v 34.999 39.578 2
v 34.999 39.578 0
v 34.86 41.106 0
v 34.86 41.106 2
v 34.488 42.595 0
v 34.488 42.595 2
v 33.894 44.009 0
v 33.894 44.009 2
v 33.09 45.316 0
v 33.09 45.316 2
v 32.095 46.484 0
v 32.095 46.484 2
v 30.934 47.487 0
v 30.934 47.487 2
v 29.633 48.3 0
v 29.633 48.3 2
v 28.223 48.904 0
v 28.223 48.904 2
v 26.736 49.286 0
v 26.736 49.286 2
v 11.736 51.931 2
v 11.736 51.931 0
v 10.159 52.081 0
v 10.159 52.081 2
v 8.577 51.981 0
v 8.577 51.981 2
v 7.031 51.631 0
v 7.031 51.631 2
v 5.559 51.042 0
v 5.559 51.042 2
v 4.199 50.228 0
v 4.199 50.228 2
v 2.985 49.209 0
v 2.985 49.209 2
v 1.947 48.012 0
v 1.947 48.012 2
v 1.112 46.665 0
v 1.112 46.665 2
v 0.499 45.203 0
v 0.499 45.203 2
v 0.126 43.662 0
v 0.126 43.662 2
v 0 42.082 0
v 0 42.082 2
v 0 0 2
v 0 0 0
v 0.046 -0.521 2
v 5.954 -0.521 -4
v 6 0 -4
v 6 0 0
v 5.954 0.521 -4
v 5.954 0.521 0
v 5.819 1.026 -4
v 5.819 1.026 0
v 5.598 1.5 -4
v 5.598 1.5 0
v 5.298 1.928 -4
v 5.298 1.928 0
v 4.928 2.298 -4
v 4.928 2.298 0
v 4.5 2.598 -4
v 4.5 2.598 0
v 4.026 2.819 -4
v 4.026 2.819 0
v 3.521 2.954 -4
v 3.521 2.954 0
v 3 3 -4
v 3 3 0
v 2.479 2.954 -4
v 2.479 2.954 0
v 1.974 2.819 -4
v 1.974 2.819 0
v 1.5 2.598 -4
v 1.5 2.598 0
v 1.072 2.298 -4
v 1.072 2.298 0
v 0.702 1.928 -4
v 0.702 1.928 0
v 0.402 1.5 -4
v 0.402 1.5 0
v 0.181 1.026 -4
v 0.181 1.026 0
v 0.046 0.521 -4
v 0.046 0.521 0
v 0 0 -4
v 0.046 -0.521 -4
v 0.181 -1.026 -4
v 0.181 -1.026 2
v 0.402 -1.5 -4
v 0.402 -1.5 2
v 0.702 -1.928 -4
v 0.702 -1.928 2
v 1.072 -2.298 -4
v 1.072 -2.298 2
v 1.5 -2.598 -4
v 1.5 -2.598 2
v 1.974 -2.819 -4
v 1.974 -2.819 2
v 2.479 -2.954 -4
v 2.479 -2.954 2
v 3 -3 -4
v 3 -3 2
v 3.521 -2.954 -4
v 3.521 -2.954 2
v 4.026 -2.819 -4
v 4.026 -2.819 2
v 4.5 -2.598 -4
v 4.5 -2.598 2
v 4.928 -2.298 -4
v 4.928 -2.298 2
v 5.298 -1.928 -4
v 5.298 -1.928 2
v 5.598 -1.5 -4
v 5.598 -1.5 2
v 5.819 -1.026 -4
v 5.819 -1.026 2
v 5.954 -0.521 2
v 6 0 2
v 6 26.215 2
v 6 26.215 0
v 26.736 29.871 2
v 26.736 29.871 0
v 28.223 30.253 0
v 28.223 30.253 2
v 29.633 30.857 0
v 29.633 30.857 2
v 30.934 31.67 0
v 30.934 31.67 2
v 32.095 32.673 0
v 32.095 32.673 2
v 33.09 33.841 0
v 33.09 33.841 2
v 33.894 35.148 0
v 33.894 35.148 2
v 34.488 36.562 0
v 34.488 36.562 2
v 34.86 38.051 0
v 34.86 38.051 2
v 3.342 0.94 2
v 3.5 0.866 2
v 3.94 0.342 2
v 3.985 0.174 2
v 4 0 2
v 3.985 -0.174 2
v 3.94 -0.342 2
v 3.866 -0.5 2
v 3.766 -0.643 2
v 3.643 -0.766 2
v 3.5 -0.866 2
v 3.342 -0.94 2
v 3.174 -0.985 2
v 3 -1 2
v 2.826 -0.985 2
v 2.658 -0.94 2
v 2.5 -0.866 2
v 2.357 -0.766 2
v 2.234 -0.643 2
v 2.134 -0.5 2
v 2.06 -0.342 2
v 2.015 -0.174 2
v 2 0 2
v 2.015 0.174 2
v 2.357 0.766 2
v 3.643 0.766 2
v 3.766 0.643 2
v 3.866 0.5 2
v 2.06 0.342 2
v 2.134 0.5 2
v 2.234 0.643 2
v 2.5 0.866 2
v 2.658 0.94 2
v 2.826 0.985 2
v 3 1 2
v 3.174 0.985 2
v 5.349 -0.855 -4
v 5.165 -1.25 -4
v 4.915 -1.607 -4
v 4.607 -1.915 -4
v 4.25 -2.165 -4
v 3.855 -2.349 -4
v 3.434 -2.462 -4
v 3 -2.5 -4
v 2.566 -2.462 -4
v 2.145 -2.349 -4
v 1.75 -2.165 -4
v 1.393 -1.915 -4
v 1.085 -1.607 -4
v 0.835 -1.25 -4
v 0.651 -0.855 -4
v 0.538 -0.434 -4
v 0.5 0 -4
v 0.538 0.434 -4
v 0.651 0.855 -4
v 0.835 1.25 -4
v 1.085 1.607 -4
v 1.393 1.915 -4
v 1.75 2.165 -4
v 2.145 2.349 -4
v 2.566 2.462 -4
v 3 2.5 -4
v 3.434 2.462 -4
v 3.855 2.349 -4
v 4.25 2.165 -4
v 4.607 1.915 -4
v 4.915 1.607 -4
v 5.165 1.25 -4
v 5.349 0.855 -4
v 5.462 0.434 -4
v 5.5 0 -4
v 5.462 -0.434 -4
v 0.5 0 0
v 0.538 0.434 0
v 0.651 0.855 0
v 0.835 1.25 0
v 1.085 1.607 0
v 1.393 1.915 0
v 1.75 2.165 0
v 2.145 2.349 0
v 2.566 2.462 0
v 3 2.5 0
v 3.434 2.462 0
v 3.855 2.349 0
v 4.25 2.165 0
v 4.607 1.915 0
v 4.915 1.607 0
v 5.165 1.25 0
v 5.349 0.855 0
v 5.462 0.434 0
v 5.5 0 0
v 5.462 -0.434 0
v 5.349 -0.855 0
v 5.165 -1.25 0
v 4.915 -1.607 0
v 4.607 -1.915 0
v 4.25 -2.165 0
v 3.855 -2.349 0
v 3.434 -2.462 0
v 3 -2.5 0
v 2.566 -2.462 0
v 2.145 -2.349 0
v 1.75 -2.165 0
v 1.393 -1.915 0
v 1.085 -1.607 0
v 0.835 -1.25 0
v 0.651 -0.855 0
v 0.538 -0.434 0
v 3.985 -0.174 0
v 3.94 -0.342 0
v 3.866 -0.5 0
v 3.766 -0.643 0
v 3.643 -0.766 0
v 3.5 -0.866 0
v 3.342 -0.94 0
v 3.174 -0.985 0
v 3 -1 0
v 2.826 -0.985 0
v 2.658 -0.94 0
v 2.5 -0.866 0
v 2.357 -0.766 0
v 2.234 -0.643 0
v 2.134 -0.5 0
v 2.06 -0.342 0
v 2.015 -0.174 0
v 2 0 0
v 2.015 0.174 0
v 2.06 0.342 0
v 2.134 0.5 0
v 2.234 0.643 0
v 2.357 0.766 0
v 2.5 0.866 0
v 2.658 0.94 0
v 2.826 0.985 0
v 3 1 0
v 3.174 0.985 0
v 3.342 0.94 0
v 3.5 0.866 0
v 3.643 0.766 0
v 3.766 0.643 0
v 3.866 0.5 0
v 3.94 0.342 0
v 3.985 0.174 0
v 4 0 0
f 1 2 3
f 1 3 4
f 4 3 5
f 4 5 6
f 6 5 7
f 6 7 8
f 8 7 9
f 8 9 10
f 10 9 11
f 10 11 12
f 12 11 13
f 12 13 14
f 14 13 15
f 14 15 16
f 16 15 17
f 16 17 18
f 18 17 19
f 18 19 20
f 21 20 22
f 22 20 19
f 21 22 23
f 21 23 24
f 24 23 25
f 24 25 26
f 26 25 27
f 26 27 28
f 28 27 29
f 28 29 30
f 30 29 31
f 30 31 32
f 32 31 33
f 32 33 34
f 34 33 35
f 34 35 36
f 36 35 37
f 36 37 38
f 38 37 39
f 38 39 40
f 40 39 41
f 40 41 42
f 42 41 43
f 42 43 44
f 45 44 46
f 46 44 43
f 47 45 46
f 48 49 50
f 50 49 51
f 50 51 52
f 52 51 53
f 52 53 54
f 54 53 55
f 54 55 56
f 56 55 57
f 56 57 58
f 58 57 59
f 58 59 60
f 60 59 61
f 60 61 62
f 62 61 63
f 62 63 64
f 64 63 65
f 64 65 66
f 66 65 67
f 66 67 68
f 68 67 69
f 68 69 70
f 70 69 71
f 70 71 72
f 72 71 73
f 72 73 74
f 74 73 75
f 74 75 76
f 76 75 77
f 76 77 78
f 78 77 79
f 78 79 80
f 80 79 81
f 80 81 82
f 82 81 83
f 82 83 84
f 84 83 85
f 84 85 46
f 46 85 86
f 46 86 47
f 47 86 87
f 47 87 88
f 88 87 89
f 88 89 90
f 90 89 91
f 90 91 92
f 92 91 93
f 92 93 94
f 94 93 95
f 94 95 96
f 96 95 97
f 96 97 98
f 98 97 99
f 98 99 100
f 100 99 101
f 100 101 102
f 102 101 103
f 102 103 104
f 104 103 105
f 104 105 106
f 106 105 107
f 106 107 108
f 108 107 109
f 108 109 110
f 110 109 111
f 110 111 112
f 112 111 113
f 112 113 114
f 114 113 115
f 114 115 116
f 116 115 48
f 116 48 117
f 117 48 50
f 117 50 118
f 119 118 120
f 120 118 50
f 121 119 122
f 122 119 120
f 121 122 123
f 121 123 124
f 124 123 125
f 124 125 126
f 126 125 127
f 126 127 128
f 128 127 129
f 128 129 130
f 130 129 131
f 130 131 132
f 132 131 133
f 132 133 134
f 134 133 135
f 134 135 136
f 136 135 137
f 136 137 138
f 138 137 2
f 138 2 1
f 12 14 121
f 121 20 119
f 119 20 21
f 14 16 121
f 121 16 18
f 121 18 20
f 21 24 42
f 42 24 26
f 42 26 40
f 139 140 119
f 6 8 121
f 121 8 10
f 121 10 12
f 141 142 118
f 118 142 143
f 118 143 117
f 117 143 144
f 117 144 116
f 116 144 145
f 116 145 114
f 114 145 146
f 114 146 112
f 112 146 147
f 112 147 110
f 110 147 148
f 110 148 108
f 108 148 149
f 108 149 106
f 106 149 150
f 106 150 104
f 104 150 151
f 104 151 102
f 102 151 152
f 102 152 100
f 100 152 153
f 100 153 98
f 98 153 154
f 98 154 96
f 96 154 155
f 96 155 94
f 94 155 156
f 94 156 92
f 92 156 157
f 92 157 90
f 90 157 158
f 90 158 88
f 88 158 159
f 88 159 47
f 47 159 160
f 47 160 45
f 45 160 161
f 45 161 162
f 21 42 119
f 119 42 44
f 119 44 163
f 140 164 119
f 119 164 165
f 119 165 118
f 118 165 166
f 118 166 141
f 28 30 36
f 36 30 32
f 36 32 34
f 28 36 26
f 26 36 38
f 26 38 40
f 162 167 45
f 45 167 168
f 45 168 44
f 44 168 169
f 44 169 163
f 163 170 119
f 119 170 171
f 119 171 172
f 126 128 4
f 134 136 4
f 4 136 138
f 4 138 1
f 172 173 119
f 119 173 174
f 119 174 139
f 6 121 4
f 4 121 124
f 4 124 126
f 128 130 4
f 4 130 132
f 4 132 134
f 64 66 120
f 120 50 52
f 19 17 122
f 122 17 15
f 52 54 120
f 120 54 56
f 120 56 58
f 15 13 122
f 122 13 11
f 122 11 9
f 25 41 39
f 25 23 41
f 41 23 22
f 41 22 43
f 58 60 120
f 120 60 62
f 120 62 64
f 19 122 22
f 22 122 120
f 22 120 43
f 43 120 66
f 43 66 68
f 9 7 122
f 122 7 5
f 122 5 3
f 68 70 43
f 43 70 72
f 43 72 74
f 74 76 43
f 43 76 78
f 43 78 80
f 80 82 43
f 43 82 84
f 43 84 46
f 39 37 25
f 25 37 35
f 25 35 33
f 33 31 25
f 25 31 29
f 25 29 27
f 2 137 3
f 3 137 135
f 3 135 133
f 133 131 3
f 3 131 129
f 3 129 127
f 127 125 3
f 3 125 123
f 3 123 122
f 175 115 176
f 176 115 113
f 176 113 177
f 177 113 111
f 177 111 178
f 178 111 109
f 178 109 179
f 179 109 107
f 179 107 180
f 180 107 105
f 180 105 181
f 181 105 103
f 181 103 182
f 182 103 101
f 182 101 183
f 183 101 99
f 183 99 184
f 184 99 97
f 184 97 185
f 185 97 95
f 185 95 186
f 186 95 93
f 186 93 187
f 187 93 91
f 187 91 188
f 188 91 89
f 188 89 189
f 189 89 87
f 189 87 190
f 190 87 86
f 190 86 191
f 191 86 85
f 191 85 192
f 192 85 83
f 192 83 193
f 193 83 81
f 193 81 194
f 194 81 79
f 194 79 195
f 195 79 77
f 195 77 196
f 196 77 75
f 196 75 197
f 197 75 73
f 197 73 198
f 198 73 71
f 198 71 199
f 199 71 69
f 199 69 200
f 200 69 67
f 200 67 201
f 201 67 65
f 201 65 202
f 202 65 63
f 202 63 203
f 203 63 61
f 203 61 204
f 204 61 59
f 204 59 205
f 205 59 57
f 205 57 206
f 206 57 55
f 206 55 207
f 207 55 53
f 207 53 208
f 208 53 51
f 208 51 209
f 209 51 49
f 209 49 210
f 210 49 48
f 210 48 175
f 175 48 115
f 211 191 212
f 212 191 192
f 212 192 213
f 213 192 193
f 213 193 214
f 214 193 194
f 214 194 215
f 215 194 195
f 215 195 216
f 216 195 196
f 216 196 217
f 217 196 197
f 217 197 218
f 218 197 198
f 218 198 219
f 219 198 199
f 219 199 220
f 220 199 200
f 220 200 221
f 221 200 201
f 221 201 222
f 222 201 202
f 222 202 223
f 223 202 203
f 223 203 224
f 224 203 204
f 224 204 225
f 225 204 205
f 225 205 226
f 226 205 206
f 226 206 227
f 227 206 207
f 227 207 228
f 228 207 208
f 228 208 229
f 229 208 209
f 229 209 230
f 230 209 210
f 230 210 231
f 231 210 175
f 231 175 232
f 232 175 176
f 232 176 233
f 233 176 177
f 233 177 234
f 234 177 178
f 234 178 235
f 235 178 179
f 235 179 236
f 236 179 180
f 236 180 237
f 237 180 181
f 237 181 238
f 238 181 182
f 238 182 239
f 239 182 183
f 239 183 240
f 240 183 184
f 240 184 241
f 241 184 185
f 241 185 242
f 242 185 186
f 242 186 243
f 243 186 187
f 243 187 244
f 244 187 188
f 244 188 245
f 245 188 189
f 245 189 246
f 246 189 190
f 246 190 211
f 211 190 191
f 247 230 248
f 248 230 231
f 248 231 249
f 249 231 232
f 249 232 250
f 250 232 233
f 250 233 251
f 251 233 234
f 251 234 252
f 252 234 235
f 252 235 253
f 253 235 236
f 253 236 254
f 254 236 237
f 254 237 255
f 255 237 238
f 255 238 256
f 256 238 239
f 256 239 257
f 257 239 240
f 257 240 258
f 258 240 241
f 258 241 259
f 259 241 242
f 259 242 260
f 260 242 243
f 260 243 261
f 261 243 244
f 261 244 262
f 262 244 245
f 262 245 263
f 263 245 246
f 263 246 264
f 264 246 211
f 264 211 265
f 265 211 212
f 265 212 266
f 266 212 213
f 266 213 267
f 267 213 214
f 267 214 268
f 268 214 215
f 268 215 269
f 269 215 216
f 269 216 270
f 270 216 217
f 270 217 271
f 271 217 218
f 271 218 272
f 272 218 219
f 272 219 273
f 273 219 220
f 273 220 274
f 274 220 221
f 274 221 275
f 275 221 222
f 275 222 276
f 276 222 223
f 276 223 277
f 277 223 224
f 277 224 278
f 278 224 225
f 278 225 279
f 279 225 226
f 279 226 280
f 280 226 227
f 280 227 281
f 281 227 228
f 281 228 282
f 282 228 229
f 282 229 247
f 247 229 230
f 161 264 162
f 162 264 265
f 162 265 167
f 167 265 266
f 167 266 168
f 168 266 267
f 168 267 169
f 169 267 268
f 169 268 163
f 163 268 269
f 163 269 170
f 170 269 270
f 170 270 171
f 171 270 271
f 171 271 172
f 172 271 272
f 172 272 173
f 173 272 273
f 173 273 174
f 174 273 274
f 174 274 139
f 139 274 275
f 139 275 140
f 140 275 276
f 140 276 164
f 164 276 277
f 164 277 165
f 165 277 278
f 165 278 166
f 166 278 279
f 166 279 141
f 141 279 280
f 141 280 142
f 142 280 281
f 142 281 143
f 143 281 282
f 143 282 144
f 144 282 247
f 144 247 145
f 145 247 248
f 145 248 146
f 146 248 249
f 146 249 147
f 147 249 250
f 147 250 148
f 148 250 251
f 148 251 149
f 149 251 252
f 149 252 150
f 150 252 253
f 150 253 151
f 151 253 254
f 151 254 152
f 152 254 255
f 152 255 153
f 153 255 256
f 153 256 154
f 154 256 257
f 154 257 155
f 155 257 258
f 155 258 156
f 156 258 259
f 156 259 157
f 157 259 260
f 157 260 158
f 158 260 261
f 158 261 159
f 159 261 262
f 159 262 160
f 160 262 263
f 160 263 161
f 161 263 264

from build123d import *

# Parameters (mm, degrees)
BOSS_EXTRUDE1_DEPTH = 2
BOSS_EXTRUDE2_START = -6
SKETCH2_R           = 3
BOSS_EXTRUDE2_DEPTH = 6
SKETCH3_R           = 2.5
CUT_EXTRUDE1_DEPTH  = 4
SKETCH4_R           = 1
CUT_EXTRUDE2_DEPTH  = 2


with BuildPart() as part:
    # Sketch1 → Boss-Extrude1 (new body)
    with BuildSketch(Plane.XY):
        with BuildLine():
            Line((0, 42.082464074), (0, 0))
            ThreePointArc((0, 0), (3, -3), (6, 0))
            Line((6, 0), (6, 26.214927972))
            Line((6, 26.214927972), (26.736481777, 29.871329194))
            ThreePointArc((26.736481777, 29.871329194), (32.614961131, 33.237711964), (34.999006977, 39.578483044))
            ThreePointArc((34.999006977, 39.578483044), (32.614961131, 45.919254124), (26.736481777, 49.285636894))
            Line((26.736481777, 49.285636894), (11.736481777, 51.930541604))
            ThreePointArc((11.736481777, 51.930541604), (3.572123903, 49.742908505), (0, 42.082464074))
        make_face()
    extrude(amount=BOSS_EXTRUDE1_DEPTH)

    # Sketch2 → Boss-Extrude2 (add)
    with BuildSketch(Plane.XY.offset(2).offset(BOSS_EXTRUDE2_START)):
        with Locations((3, 0)):
            Circle(SKETCH2_R)
    extrude(amount=BOSS_EXTRUDE2_DEPTH)

    # Sketch3 → Cut-Extrude1 (cut)
    with BuildSketch(Plane(origin=(0, 0, -4), x_dir=(-1, 0, 0), z_dir=(0, 0, -1))):
        with Locations((-3, 0)):
            Circle(SKETCH3_R)
    extrude(amount=-CUT_EXTRUDE1_DEPTH, mode=Mode.SUBTRACT)

    # Sketch4 → Cut-Extrude2 (cut)
    with BuildSketch(Plane(origin=(0, 0, 0), x_dir=(-1, 0, 0), z_dir=(0, 0, -1))):
        with Locations((-3, 0)):
            Circle(SKETCH4_R)
    extrude(amount=-CUT_EXTRUDE2_DEPTH, mode=Mode.SUBTRACT)


solid = part.part
